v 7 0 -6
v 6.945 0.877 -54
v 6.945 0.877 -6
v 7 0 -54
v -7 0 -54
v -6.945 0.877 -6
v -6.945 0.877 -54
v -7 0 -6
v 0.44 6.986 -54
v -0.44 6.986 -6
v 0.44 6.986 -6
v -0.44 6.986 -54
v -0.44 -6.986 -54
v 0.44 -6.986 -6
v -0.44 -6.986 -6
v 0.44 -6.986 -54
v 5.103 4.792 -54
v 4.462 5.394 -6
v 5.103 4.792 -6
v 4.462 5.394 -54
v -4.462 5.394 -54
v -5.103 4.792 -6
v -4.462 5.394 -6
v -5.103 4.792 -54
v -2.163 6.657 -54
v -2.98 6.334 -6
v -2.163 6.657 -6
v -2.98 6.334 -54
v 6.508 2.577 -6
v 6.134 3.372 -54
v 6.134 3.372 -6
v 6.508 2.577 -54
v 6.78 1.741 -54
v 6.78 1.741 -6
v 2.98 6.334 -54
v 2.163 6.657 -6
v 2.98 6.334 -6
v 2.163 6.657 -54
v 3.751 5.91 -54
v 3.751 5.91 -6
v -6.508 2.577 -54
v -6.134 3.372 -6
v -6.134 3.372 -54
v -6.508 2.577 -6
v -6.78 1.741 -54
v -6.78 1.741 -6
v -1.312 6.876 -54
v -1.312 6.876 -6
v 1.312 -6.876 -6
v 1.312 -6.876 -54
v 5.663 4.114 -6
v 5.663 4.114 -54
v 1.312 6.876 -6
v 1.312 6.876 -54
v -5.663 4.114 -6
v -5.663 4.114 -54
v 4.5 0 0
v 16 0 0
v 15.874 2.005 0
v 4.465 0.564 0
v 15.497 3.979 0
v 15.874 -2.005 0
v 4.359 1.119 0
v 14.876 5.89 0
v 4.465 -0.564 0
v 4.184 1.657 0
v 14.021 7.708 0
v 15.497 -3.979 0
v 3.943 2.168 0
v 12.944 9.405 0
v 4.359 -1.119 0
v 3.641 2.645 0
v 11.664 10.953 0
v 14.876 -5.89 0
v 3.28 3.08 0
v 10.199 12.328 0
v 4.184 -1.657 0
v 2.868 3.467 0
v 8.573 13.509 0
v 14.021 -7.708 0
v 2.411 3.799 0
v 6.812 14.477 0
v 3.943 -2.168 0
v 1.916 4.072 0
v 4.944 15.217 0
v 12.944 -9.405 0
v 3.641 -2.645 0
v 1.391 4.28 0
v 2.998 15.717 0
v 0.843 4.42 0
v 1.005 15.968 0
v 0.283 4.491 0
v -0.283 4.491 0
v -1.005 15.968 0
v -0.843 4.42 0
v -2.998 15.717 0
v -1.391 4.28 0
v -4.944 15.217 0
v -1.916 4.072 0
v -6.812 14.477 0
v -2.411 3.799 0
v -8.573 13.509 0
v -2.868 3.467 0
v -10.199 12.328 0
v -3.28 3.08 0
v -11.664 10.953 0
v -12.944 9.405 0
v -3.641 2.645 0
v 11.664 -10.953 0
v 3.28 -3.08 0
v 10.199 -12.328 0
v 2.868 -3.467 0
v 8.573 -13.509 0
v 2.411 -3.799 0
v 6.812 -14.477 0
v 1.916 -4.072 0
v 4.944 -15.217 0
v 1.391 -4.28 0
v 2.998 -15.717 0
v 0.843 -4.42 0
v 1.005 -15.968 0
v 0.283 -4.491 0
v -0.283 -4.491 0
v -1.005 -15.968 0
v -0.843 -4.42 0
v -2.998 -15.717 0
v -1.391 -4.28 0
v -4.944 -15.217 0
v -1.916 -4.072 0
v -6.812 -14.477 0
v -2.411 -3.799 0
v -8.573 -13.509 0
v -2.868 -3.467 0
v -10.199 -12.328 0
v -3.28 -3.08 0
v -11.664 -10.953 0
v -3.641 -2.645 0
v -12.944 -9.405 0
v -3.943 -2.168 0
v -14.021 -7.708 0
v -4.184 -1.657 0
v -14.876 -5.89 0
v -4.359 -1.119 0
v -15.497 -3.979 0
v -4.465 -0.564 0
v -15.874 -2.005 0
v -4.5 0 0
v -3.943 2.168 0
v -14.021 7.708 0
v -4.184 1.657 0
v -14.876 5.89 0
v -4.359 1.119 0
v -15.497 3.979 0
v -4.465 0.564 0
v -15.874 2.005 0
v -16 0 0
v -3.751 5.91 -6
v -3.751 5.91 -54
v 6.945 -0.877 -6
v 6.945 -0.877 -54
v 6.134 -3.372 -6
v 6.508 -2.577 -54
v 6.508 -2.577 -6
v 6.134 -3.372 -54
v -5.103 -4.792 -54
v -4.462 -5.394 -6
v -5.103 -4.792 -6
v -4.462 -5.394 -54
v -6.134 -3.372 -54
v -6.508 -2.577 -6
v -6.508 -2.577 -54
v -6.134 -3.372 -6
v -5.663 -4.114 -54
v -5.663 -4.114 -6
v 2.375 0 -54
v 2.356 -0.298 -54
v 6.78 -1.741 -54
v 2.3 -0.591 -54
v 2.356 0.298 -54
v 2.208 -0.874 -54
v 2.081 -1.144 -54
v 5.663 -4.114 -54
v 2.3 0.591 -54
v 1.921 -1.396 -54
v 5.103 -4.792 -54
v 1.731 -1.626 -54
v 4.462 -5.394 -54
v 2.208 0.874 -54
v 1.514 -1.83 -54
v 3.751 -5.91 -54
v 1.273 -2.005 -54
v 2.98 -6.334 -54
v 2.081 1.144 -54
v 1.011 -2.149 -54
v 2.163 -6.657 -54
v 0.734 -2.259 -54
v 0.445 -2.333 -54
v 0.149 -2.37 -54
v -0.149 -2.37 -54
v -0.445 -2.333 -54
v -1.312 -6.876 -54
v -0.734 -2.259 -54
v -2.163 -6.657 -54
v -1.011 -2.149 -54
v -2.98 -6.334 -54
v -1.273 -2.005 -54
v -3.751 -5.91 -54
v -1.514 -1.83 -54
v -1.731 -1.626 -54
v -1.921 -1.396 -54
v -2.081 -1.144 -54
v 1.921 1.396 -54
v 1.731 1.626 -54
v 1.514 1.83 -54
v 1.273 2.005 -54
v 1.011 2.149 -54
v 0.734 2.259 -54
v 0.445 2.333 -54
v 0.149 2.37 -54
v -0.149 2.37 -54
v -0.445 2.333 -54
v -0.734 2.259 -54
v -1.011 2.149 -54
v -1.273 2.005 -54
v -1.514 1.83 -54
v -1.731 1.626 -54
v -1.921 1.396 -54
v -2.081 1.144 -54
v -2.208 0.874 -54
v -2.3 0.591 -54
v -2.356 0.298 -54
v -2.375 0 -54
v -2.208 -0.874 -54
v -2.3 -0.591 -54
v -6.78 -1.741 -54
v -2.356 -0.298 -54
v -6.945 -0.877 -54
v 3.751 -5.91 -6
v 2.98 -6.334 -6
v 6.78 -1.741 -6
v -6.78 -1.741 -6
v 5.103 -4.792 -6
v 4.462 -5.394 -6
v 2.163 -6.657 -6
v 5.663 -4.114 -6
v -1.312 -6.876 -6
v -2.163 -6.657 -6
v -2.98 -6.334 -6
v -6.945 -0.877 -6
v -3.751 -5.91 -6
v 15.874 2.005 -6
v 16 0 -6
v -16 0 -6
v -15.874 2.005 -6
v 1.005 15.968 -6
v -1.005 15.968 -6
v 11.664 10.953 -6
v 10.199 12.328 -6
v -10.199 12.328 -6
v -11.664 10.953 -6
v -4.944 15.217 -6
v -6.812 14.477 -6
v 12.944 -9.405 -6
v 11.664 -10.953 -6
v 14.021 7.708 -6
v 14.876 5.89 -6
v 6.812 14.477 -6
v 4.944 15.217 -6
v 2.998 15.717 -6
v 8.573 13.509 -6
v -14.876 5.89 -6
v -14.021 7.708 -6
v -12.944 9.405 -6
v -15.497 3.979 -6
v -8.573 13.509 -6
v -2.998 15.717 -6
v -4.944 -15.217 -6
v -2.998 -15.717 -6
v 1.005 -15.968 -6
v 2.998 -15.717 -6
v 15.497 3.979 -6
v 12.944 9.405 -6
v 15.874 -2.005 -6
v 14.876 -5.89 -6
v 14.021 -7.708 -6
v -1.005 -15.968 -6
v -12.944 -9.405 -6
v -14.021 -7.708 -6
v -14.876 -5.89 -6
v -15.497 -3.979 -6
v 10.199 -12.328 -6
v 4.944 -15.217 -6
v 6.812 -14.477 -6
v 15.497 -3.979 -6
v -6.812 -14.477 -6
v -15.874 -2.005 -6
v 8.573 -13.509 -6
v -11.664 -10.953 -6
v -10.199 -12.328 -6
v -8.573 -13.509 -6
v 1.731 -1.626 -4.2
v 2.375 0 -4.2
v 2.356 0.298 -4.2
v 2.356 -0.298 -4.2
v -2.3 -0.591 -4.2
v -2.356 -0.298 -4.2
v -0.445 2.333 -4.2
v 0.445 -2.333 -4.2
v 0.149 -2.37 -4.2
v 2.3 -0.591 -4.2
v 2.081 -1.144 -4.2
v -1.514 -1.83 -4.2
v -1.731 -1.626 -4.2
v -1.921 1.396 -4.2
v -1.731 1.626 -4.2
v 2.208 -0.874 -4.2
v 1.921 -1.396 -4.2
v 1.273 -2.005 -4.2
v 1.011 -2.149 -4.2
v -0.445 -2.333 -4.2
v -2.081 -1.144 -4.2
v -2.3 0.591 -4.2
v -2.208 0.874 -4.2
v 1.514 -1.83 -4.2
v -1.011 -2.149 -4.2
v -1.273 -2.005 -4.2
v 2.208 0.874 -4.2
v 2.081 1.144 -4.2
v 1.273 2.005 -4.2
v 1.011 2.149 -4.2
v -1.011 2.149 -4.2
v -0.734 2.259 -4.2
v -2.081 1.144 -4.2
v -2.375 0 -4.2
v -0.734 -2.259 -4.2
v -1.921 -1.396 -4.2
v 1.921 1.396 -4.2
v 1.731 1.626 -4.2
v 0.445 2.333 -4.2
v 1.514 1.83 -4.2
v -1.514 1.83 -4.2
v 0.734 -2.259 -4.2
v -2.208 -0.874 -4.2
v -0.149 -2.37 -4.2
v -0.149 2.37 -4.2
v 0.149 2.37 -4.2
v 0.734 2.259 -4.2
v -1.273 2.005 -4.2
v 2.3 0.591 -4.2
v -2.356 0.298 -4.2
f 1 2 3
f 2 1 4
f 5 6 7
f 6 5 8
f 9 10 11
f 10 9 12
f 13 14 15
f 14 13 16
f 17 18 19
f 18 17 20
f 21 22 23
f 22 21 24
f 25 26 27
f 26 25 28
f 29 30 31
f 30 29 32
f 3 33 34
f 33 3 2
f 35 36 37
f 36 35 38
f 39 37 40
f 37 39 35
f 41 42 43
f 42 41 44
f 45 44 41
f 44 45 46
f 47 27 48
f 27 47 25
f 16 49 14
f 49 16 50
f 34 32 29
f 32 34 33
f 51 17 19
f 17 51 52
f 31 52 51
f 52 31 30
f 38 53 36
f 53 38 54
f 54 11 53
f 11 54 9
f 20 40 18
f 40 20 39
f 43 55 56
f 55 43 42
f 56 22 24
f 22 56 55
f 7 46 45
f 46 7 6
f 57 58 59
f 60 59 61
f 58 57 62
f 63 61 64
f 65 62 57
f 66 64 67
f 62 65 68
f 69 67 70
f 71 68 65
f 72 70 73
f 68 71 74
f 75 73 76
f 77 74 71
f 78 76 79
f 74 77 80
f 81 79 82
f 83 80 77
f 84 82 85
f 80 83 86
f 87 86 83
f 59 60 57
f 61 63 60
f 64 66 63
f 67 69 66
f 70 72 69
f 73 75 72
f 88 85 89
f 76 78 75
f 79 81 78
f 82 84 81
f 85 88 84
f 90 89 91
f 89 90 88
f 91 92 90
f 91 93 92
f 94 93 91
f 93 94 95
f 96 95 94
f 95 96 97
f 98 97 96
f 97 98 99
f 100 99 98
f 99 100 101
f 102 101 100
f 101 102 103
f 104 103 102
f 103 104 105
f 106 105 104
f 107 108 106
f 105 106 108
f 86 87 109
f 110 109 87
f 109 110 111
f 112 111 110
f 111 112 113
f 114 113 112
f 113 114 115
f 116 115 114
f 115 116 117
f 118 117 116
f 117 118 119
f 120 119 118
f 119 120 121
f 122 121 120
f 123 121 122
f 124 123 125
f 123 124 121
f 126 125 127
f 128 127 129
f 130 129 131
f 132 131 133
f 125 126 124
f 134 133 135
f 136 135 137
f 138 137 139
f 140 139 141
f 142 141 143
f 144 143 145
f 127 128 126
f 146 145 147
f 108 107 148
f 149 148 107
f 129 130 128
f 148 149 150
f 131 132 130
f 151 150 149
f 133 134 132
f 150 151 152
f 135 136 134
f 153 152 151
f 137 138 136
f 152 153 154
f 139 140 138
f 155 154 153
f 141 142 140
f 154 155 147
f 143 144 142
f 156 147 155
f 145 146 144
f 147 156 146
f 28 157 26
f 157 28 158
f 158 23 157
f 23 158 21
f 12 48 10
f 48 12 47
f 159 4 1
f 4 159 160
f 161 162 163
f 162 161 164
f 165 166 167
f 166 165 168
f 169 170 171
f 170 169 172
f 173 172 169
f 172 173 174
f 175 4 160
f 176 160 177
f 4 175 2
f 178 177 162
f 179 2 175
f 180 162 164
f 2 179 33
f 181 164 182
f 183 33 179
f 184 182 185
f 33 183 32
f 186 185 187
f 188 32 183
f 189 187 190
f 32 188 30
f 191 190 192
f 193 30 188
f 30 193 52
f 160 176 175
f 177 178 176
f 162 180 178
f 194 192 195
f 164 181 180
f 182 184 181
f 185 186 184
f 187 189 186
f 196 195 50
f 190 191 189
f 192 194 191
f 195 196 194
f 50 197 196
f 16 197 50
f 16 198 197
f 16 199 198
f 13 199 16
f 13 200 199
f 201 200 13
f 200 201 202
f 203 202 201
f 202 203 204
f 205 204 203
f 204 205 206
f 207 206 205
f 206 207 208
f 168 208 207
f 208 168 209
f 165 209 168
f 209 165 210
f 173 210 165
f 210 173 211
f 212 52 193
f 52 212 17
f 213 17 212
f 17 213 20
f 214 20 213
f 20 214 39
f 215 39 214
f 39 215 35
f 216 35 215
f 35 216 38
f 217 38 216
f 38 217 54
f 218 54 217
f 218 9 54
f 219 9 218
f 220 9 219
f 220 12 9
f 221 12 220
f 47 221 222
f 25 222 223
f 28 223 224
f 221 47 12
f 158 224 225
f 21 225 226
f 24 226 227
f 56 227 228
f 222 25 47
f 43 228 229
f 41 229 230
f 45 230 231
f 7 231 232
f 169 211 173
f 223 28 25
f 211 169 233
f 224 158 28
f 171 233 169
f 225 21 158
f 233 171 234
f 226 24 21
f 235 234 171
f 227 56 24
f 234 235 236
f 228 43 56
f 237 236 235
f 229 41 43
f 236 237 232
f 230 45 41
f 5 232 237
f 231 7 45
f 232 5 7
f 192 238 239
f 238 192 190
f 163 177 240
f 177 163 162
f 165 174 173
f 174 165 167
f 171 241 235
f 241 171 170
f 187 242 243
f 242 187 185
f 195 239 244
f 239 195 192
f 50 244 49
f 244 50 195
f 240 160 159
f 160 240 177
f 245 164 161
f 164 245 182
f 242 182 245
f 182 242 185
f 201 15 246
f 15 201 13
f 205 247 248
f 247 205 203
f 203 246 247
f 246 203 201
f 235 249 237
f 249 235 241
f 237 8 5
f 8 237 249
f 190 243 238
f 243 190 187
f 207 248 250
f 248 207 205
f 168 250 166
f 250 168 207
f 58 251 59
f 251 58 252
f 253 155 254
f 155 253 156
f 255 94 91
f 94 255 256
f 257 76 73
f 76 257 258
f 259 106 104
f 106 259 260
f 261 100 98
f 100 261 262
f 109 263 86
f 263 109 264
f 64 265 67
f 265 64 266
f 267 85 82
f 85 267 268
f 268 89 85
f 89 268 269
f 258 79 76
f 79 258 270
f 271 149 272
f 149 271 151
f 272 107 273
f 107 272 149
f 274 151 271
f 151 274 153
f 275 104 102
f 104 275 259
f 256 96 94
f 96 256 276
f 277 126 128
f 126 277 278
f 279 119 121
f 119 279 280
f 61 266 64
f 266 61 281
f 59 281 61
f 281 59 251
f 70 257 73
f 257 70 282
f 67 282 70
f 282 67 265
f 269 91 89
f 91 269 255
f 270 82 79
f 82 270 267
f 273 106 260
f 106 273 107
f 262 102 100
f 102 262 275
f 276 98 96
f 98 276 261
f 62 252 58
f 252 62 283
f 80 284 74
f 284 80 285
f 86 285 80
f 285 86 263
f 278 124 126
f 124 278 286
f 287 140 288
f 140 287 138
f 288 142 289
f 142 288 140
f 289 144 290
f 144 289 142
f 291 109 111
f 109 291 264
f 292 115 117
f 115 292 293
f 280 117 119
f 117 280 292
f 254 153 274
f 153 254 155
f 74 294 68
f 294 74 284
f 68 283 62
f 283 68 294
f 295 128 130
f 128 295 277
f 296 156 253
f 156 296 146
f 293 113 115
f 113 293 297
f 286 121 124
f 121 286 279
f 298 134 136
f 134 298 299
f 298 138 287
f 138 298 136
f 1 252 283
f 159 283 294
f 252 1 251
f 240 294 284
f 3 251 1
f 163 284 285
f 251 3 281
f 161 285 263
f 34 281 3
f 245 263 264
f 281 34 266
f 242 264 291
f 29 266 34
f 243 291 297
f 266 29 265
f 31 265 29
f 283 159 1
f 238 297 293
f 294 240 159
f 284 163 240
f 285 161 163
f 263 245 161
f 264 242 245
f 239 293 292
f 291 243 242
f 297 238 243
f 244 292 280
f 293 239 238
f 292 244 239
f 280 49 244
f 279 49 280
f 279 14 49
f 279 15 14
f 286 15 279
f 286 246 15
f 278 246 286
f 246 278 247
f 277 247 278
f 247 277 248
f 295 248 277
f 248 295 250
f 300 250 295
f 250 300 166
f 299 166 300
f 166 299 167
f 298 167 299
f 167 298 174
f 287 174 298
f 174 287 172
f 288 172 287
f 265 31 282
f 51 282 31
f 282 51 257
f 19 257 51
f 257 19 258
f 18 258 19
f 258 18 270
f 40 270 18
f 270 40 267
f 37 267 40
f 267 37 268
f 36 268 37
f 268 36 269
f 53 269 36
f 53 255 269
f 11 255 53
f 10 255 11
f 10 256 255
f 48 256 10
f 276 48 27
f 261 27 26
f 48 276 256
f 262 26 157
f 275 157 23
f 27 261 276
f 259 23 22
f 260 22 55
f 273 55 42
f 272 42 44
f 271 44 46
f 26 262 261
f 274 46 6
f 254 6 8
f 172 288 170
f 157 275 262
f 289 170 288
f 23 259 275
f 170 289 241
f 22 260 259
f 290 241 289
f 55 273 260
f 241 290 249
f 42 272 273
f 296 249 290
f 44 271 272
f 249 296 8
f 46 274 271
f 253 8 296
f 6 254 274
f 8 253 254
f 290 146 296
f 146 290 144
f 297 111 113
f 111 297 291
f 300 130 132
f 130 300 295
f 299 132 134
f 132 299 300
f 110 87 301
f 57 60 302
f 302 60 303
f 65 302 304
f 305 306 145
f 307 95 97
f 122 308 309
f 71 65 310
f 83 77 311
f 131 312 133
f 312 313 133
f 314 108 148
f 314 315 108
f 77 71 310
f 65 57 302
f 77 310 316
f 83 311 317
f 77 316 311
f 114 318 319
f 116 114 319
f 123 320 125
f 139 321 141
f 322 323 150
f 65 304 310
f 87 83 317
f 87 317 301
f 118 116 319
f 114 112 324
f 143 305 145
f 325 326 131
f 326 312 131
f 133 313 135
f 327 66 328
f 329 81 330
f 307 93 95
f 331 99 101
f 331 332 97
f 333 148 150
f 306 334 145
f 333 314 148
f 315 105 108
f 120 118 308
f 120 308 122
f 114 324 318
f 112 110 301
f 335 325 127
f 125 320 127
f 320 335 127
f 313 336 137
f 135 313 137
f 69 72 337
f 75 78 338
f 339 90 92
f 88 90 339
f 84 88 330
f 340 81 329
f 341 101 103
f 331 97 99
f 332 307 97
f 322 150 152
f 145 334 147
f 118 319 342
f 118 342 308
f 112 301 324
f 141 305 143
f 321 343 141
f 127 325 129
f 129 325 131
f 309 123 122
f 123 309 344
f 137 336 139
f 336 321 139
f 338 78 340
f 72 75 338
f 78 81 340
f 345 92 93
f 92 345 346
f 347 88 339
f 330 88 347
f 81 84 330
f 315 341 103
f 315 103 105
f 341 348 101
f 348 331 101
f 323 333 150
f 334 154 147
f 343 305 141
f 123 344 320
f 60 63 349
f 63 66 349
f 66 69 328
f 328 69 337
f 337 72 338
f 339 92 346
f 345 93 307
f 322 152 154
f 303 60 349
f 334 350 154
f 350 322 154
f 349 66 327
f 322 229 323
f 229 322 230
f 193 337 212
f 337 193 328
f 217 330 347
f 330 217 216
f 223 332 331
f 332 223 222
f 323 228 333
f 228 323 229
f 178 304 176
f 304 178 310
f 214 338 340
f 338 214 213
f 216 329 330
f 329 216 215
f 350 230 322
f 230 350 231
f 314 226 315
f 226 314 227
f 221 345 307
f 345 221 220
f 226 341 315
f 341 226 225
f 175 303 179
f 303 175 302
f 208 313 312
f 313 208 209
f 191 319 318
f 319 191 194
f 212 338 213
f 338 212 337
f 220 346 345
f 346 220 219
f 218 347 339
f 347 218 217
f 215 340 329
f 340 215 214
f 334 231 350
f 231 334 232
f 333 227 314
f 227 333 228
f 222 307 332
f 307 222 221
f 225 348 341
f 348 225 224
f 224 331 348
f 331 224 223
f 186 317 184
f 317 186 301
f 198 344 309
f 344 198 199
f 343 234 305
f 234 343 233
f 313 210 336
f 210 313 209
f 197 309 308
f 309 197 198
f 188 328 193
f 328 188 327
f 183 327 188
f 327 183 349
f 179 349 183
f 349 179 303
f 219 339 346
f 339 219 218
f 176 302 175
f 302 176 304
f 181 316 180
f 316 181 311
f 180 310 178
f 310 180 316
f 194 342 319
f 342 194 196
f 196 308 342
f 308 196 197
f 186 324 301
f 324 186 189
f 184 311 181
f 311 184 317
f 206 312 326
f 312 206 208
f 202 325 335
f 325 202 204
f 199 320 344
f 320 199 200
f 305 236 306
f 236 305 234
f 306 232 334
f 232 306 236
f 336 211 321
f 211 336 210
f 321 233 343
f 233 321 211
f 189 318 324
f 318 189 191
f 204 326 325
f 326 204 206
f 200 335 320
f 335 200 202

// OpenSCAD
$fn = 50;


difference() {
	union() {
		translate(v = [0, 0, -54.0000000000]) {
			cylinder(h = 54, r = 7.0000000000);
		}
		translate(v = [0, 0, -6.0000000000]) {
			cylinder(h = 6, r = 16.0000000000);
		}
	}
	union() {
		translate(v = [0, 0, 0]) {
			rotate(a = [0, 0, 0]) {
				difference() {
					union() {
						#translate(v = [0, 0, -54.0000000000]) {
							cylinder(h = 54, r = 2.2500000000);
						}
						#translate(v = [0, 0, -4.2000000000]) {
							cylinder(h = 4.2000000000, r1 = 2.3750000000, r2 = 4.5000000000);
						}
						#translate(v = [0, 0, -54.0000000000]) {
							cylinder(h = 54, r = 2.3750000000);
						}
						#translate(v = [0, 0, -54.0000000000]) {
							cylinder(h = 54, r = 2.2500000000);
						}
					}
					union();
				}
			}
		}
	}
}
